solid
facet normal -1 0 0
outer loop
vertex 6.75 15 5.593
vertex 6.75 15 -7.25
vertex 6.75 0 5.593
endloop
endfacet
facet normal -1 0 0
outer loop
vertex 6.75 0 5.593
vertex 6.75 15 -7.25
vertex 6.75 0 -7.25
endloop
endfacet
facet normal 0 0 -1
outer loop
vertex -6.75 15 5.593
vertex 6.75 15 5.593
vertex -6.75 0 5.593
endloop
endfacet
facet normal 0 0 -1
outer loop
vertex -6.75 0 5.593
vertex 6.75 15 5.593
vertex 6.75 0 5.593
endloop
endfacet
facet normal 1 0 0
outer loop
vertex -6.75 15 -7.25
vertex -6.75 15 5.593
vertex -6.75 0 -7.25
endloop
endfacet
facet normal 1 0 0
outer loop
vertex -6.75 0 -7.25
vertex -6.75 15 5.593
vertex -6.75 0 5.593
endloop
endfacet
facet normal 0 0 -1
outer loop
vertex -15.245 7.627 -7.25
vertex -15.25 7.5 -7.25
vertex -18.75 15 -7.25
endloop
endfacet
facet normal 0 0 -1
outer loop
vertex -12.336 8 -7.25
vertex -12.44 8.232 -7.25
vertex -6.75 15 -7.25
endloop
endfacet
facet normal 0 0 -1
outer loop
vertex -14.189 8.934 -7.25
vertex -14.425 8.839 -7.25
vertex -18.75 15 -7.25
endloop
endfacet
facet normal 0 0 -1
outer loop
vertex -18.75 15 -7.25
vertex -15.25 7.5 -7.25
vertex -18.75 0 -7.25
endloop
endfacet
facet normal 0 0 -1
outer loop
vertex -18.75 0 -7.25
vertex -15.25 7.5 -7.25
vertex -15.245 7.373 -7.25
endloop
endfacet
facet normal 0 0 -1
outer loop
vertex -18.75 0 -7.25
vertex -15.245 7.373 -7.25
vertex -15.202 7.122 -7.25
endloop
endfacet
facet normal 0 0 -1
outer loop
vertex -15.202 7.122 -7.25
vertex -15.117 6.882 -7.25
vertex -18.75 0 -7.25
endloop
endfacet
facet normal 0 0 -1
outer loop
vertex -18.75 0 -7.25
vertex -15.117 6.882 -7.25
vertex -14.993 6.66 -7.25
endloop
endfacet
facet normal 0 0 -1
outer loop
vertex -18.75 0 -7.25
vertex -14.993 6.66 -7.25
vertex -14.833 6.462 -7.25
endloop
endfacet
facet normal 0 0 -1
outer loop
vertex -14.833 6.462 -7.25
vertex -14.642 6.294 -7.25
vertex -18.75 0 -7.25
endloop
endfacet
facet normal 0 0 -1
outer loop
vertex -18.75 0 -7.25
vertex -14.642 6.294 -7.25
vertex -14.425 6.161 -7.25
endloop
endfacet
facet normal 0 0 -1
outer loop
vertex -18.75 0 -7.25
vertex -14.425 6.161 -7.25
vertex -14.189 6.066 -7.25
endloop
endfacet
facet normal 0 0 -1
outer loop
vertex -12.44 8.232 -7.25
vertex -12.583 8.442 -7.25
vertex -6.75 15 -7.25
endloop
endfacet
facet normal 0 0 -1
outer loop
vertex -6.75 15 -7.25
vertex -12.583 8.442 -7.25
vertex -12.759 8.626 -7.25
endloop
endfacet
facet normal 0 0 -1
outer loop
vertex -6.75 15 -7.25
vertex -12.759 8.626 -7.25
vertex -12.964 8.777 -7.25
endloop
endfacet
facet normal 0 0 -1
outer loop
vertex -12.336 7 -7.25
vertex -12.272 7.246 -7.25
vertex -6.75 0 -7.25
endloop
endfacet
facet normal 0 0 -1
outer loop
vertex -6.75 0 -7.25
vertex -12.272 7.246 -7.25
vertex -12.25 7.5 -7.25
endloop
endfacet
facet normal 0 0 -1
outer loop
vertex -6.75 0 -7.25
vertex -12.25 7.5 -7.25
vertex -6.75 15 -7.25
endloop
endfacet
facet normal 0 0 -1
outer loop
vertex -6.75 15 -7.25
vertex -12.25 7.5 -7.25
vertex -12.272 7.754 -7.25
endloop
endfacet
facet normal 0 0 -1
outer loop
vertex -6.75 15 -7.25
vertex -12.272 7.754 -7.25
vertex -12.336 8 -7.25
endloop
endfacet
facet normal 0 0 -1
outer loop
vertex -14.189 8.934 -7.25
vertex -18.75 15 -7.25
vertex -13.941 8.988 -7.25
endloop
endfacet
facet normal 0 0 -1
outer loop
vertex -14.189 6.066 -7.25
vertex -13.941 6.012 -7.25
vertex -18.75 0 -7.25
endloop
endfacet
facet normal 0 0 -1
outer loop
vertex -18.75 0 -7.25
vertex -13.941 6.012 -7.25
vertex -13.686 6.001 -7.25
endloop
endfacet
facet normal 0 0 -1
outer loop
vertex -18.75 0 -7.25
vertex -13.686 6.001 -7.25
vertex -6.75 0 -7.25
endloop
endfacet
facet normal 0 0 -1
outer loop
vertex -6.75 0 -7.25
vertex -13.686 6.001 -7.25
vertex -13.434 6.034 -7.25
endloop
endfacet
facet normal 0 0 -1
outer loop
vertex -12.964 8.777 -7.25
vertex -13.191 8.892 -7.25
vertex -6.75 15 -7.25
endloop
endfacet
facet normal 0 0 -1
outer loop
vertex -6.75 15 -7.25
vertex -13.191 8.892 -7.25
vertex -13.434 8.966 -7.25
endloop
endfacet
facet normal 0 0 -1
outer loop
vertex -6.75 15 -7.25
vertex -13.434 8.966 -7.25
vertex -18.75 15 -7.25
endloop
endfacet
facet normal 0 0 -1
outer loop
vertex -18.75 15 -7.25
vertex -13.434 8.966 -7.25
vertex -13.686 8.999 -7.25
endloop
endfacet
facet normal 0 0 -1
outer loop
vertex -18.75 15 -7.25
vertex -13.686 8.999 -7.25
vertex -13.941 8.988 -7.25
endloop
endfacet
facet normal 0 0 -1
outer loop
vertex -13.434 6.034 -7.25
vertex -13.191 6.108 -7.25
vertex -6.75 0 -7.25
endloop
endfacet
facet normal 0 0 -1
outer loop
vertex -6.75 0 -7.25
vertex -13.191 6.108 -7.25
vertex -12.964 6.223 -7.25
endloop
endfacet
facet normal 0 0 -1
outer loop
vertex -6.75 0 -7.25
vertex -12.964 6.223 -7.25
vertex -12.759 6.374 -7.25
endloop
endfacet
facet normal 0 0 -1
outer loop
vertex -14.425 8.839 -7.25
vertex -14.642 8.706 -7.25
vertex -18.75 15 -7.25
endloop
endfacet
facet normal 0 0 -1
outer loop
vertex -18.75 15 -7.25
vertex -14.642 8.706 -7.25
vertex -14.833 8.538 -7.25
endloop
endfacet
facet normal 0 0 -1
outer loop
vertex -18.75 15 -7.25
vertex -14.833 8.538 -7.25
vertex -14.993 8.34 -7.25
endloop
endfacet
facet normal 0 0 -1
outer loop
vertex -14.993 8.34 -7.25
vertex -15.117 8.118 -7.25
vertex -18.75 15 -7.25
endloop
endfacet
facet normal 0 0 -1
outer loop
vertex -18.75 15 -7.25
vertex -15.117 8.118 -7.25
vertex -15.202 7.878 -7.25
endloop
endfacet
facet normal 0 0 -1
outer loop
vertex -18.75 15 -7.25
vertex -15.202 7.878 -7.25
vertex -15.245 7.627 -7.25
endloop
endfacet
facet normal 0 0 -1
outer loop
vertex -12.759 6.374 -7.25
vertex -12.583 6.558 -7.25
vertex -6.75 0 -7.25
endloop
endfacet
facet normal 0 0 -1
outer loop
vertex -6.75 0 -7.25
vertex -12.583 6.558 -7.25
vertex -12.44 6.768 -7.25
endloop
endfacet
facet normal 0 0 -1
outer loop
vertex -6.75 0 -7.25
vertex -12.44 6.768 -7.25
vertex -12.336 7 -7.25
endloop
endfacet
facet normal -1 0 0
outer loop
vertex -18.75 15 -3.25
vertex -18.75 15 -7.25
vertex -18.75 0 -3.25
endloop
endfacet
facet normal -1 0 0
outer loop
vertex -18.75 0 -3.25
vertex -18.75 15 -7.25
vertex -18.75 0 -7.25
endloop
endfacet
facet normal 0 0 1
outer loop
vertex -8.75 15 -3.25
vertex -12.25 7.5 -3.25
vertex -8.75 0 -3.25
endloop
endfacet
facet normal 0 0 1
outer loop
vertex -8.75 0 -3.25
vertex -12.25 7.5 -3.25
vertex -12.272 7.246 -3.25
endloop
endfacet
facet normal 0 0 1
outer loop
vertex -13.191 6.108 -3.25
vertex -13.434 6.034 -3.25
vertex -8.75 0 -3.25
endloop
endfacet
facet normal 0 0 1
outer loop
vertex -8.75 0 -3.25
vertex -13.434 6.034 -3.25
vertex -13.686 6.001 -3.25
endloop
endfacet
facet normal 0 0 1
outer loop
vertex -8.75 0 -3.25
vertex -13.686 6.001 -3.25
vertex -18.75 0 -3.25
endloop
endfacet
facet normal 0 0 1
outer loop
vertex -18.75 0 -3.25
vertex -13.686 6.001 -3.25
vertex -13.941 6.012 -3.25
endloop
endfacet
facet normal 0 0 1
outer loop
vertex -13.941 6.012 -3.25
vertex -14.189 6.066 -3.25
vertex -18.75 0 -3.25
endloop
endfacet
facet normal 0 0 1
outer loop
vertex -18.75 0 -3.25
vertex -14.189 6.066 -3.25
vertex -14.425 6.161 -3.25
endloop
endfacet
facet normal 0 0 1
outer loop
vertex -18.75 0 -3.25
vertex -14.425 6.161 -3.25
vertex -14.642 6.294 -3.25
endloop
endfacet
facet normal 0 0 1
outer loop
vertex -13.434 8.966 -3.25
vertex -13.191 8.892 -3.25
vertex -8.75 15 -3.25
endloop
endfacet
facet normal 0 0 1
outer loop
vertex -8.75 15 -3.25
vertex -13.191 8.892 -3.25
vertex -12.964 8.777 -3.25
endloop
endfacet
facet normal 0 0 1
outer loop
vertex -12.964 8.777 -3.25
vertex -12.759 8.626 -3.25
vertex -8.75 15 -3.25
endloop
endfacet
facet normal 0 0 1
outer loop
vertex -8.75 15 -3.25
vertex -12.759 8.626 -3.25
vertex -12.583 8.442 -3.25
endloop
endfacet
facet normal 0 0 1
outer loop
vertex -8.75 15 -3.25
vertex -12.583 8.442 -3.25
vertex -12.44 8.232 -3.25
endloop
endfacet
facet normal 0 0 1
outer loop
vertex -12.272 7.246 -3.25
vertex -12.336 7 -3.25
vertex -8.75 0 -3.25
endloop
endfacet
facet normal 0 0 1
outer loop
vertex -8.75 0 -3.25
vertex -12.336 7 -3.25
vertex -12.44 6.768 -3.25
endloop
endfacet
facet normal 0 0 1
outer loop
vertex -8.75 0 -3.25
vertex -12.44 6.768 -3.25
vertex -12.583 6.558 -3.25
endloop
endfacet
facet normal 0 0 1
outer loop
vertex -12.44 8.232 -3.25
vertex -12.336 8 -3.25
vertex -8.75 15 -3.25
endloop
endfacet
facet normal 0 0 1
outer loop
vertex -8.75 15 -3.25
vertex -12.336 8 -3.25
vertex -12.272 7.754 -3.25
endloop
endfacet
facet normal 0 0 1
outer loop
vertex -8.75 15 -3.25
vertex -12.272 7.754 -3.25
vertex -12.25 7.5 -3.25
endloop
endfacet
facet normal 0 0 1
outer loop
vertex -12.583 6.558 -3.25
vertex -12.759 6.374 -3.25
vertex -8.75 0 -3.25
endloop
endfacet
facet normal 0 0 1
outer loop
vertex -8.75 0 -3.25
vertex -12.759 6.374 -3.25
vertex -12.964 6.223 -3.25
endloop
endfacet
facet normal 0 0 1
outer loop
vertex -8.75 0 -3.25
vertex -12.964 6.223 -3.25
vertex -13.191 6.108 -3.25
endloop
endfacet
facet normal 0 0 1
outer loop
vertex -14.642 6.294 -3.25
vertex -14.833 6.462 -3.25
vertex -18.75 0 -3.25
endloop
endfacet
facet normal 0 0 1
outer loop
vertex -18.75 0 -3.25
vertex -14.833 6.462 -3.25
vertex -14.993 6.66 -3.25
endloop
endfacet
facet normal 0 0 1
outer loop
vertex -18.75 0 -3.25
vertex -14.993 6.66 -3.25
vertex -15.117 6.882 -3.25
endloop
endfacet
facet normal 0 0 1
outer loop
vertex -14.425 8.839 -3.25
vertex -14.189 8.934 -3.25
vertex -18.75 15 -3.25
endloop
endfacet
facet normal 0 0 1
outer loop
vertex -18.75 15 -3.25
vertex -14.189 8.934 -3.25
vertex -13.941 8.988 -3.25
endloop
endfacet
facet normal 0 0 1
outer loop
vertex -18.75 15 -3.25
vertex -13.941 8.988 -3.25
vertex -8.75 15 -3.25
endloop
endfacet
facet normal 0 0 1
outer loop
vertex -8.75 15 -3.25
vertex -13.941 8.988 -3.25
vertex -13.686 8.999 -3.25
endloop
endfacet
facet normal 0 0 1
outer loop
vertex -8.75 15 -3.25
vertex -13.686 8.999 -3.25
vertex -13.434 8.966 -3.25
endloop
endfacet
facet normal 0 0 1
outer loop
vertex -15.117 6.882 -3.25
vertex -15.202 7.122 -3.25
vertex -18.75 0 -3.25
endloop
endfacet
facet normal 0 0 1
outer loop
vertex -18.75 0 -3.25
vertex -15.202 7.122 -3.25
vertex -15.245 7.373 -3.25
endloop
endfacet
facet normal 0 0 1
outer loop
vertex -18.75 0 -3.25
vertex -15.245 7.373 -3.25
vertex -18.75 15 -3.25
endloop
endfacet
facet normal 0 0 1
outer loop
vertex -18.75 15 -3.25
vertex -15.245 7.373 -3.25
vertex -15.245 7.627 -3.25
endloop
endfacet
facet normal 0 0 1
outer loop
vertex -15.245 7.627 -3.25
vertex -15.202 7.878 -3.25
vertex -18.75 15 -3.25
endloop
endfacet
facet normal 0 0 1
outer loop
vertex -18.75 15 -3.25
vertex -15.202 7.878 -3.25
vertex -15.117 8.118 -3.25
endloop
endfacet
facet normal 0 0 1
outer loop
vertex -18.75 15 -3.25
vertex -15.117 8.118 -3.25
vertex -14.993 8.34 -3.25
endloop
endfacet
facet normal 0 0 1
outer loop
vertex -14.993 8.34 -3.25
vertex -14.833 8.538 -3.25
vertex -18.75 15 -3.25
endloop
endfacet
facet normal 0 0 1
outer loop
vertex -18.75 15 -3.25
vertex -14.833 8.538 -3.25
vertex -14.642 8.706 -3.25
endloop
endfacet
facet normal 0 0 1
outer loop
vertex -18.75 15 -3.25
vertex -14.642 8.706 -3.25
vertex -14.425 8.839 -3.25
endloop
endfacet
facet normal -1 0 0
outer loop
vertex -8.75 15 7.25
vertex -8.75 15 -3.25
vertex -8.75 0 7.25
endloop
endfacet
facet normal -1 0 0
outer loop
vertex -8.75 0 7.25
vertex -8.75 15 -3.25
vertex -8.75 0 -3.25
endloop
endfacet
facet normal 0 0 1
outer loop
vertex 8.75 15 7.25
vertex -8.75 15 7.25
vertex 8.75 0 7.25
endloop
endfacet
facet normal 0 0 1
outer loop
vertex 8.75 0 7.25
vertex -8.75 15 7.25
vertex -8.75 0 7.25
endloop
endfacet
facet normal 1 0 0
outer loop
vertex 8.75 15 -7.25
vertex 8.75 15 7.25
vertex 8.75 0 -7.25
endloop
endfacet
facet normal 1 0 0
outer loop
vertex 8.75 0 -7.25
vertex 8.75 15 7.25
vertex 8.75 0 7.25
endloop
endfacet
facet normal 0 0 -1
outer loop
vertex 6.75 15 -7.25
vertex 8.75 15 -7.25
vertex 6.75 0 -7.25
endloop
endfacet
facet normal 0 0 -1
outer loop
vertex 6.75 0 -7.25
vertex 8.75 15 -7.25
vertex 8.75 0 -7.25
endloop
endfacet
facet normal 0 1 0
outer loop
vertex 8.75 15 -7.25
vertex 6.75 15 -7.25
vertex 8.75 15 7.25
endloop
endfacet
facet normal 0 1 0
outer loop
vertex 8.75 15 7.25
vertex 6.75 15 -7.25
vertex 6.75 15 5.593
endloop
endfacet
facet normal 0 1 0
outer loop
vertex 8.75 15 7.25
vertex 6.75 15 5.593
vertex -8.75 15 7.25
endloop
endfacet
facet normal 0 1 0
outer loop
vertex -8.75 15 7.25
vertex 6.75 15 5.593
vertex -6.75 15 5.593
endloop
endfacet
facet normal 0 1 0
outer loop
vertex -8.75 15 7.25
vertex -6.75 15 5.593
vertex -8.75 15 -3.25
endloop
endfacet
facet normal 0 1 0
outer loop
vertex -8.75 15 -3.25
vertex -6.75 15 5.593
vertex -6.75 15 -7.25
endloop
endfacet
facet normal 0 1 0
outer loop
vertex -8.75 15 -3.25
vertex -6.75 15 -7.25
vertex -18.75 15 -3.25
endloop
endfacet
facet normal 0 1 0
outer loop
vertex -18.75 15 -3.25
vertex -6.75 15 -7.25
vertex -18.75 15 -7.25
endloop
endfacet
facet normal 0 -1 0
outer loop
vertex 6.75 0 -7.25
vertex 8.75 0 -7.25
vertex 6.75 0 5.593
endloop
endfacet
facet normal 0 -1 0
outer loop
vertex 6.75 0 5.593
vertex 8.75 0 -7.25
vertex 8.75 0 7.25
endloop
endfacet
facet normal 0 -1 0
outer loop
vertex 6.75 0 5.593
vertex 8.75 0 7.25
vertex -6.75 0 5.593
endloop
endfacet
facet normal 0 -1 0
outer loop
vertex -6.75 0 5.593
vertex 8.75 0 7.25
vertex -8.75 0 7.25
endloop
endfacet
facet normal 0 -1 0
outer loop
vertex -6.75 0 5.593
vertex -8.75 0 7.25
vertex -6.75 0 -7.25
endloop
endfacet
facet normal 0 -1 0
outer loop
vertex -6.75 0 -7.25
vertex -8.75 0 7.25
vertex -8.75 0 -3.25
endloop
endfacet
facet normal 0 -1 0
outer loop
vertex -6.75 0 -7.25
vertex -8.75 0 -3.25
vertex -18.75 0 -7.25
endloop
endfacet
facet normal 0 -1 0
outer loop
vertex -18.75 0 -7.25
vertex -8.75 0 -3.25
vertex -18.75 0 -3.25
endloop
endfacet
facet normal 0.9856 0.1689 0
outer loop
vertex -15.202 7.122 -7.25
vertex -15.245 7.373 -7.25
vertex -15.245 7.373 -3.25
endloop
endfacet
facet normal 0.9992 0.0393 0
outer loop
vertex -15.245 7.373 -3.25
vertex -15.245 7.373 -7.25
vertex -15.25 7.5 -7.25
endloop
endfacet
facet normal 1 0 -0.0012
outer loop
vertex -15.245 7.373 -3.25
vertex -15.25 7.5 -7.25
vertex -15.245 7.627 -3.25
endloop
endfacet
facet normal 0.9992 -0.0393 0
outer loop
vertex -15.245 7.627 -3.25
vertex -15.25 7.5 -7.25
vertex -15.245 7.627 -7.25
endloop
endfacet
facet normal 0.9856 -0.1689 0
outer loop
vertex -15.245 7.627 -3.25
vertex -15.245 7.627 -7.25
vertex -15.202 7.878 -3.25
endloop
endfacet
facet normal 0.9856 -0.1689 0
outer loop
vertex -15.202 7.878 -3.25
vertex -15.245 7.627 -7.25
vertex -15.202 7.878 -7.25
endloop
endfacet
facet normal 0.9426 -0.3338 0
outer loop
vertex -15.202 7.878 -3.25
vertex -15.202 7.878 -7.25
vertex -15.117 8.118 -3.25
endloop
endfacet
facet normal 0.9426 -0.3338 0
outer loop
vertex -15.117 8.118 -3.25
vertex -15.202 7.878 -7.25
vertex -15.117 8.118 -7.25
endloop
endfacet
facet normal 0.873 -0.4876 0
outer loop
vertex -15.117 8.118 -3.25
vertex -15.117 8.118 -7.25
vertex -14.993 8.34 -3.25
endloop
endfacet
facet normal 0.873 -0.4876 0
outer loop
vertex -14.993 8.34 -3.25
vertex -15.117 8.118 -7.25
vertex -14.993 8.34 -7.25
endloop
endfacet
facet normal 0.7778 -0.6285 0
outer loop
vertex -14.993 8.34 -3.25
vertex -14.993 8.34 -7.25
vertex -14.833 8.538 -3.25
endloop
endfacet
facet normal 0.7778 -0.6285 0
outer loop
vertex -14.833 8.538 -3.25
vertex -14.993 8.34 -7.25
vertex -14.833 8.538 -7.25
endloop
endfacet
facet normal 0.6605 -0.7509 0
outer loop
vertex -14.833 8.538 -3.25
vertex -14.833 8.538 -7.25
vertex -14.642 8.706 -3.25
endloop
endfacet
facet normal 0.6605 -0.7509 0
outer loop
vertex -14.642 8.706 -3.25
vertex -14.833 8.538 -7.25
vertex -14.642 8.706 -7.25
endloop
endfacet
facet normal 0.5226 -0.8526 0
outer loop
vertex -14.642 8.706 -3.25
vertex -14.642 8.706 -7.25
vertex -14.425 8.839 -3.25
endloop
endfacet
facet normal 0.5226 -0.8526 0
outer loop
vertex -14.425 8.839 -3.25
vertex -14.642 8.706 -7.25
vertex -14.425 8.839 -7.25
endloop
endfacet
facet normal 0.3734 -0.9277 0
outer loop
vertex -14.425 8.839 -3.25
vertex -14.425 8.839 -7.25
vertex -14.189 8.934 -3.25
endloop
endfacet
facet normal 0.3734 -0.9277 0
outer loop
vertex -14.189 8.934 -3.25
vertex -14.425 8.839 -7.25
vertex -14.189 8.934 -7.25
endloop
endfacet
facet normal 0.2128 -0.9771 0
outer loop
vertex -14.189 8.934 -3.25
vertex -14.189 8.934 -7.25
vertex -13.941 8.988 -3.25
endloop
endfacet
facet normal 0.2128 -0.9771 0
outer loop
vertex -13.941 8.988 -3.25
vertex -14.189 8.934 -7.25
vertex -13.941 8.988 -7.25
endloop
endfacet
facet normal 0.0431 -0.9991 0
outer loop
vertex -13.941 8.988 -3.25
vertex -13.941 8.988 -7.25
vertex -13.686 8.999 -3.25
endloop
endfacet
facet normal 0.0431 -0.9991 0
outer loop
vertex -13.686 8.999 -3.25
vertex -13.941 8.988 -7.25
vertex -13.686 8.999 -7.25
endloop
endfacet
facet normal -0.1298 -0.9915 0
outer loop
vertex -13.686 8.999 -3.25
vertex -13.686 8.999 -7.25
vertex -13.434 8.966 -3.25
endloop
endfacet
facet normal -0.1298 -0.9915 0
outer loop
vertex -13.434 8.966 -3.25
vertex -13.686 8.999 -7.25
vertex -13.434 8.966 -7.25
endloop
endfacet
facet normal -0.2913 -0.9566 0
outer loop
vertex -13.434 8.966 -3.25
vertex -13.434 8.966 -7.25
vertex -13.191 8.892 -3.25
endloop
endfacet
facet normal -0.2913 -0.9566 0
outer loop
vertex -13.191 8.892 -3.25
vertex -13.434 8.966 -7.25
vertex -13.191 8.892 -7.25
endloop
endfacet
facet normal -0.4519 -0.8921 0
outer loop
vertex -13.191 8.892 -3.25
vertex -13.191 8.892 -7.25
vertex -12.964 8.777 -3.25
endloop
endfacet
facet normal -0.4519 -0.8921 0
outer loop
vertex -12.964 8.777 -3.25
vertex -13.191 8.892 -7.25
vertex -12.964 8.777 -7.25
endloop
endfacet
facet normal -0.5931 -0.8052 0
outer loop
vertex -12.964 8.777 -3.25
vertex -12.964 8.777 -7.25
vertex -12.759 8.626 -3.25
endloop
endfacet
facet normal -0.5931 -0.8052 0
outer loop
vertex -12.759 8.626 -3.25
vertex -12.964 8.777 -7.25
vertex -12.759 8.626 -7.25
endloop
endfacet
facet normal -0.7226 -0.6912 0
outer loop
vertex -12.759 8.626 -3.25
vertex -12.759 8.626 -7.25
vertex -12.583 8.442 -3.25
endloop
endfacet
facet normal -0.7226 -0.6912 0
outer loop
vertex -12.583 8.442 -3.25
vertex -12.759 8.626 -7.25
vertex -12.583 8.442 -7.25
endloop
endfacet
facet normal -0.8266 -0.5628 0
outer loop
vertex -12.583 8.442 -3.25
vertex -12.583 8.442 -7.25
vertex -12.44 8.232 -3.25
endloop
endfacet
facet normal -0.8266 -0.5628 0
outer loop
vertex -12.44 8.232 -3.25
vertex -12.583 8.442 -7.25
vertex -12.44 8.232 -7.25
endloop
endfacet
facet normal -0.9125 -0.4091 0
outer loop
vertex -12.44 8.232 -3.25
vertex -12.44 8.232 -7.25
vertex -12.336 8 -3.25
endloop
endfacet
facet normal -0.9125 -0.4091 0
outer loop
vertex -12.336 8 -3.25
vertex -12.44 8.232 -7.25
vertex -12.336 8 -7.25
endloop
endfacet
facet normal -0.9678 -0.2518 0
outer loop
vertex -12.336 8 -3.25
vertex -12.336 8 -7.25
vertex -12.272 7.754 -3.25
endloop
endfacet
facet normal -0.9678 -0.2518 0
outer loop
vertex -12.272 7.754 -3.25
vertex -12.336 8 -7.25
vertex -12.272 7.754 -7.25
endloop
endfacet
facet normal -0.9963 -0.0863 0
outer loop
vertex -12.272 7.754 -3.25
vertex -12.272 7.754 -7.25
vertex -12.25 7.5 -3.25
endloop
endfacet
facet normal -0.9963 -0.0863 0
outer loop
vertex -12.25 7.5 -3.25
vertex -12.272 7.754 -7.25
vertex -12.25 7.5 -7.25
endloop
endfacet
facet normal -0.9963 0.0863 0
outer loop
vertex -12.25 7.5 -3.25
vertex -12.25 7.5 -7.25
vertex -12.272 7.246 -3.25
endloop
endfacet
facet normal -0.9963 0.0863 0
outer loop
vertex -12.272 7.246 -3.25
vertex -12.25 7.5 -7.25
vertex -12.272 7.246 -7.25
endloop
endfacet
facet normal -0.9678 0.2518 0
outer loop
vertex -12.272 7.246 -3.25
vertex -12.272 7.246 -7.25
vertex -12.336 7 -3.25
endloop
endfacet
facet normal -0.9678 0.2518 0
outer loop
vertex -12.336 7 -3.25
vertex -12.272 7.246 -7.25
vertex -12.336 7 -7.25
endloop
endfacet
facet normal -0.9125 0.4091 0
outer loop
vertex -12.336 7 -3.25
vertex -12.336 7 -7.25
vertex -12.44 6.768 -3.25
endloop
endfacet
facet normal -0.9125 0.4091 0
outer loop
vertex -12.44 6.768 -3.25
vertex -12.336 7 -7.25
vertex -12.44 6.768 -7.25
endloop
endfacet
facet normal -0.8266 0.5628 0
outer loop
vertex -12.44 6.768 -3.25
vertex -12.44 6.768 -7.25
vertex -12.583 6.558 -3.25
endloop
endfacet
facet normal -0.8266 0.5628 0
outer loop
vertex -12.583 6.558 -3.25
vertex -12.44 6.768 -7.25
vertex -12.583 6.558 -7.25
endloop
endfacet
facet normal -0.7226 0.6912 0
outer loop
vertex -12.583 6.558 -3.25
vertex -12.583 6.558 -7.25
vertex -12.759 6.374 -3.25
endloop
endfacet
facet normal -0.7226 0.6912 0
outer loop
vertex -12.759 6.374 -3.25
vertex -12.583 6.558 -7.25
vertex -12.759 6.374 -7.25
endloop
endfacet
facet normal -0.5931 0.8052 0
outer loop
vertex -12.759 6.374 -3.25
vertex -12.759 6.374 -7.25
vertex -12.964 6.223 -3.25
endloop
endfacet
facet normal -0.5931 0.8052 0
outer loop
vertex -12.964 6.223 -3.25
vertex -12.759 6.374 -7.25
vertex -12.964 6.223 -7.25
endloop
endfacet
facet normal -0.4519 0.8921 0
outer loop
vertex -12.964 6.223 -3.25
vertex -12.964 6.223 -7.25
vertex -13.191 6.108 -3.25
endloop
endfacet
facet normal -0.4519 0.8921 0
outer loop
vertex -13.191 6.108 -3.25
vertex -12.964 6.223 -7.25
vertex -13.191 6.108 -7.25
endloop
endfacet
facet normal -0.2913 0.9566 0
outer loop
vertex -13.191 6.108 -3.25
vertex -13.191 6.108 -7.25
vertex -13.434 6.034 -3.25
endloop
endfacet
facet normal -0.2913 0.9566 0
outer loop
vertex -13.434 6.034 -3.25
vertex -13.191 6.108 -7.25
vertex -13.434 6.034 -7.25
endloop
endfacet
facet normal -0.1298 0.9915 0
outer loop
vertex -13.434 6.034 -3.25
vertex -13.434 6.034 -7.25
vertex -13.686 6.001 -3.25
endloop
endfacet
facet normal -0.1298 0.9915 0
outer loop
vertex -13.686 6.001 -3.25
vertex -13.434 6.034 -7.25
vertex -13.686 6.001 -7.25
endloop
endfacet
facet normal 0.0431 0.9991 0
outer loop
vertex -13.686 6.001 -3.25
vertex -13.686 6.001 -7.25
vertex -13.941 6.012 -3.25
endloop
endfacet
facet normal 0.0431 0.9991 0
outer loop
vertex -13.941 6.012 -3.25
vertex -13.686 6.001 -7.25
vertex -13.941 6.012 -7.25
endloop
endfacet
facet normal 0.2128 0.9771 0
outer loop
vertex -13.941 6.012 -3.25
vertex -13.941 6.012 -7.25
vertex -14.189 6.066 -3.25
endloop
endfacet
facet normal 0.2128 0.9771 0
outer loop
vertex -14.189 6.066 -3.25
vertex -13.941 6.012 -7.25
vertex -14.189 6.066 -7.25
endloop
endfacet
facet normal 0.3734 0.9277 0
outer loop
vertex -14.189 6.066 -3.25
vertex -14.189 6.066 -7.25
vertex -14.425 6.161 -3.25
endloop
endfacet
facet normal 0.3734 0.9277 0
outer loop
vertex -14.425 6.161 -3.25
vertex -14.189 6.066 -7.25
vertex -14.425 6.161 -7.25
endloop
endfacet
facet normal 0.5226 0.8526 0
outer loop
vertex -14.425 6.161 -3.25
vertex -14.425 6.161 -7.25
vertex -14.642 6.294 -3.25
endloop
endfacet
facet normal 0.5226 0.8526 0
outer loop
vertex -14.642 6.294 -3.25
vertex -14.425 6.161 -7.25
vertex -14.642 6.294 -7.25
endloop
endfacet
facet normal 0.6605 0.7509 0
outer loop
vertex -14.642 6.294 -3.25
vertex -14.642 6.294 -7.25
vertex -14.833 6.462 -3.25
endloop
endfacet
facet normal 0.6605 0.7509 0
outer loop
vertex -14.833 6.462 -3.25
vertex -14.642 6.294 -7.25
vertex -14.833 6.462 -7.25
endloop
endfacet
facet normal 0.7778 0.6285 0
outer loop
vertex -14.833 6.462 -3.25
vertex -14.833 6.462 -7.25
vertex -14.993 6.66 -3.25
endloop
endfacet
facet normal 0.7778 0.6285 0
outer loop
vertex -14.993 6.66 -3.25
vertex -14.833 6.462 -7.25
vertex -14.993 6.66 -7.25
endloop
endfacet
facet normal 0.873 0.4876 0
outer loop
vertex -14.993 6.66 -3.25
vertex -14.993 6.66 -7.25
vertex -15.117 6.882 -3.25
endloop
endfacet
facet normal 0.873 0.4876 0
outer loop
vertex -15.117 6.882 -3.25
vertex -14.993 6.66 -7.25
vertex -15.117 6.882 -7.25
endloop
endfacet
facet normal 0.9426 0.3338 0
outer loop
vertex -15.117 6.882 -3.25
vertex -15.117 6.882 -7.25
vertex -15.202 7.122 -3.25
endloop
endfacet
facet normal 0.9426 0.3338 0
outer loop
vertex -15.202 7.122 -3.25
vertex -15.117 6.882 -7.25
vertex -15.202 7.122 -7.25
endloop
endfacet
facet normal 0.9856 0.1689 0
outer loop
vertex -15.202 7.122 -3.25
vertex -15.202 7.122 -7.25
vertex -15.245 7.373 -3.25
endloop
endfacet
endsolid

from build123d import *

# Parameters (mm, degrees)
CROQUIS1_W              = 10
CROQUIS1_H              = 4
SALIENTE_EXTRUIR1_DEPTH = 15
CROQUIS2_R              = 1.5
CORTAR_EXTRUIR1_DEPTH   = 15


with BuildPart() as part:
    # Croquis1 → Saliente-Extruir1 (new body)
    with BuildSketch(Plane(origin=(0, 0, 0), x_dir=(1, 0, 0), z_dir=(0, 1, 0))):
        Polygon((-8.75, 3.25), (-8.75, -7.25), (8.75, -7.25), (8.75, 7.25), (6.75, 7.25), (6.75, -5.592857143), (-6.75, -5.592857143), (-6.75, 7.25), (-8.75, 7.25), align=None)
        with Locations((-13.75, 5.25)):
            Rectangle(CROQUIS1_W, CROQUIS1_H)
    extrude(amount=SALIENTE_EXTRUIR1_DEPTH)

    # Croquis2 → Cortar-Extruir1 (cut)
    with BuildSketch(Plane.XY.offset(-3.25)):
        with Locations((-13.75, 7.5)):
            Circle(CROQUIS2_R)
    extrude(amount=-CORTAR_EXTRUIR1_DEPTH, mode=Mode.SUBTRACT)


solid = part.part
